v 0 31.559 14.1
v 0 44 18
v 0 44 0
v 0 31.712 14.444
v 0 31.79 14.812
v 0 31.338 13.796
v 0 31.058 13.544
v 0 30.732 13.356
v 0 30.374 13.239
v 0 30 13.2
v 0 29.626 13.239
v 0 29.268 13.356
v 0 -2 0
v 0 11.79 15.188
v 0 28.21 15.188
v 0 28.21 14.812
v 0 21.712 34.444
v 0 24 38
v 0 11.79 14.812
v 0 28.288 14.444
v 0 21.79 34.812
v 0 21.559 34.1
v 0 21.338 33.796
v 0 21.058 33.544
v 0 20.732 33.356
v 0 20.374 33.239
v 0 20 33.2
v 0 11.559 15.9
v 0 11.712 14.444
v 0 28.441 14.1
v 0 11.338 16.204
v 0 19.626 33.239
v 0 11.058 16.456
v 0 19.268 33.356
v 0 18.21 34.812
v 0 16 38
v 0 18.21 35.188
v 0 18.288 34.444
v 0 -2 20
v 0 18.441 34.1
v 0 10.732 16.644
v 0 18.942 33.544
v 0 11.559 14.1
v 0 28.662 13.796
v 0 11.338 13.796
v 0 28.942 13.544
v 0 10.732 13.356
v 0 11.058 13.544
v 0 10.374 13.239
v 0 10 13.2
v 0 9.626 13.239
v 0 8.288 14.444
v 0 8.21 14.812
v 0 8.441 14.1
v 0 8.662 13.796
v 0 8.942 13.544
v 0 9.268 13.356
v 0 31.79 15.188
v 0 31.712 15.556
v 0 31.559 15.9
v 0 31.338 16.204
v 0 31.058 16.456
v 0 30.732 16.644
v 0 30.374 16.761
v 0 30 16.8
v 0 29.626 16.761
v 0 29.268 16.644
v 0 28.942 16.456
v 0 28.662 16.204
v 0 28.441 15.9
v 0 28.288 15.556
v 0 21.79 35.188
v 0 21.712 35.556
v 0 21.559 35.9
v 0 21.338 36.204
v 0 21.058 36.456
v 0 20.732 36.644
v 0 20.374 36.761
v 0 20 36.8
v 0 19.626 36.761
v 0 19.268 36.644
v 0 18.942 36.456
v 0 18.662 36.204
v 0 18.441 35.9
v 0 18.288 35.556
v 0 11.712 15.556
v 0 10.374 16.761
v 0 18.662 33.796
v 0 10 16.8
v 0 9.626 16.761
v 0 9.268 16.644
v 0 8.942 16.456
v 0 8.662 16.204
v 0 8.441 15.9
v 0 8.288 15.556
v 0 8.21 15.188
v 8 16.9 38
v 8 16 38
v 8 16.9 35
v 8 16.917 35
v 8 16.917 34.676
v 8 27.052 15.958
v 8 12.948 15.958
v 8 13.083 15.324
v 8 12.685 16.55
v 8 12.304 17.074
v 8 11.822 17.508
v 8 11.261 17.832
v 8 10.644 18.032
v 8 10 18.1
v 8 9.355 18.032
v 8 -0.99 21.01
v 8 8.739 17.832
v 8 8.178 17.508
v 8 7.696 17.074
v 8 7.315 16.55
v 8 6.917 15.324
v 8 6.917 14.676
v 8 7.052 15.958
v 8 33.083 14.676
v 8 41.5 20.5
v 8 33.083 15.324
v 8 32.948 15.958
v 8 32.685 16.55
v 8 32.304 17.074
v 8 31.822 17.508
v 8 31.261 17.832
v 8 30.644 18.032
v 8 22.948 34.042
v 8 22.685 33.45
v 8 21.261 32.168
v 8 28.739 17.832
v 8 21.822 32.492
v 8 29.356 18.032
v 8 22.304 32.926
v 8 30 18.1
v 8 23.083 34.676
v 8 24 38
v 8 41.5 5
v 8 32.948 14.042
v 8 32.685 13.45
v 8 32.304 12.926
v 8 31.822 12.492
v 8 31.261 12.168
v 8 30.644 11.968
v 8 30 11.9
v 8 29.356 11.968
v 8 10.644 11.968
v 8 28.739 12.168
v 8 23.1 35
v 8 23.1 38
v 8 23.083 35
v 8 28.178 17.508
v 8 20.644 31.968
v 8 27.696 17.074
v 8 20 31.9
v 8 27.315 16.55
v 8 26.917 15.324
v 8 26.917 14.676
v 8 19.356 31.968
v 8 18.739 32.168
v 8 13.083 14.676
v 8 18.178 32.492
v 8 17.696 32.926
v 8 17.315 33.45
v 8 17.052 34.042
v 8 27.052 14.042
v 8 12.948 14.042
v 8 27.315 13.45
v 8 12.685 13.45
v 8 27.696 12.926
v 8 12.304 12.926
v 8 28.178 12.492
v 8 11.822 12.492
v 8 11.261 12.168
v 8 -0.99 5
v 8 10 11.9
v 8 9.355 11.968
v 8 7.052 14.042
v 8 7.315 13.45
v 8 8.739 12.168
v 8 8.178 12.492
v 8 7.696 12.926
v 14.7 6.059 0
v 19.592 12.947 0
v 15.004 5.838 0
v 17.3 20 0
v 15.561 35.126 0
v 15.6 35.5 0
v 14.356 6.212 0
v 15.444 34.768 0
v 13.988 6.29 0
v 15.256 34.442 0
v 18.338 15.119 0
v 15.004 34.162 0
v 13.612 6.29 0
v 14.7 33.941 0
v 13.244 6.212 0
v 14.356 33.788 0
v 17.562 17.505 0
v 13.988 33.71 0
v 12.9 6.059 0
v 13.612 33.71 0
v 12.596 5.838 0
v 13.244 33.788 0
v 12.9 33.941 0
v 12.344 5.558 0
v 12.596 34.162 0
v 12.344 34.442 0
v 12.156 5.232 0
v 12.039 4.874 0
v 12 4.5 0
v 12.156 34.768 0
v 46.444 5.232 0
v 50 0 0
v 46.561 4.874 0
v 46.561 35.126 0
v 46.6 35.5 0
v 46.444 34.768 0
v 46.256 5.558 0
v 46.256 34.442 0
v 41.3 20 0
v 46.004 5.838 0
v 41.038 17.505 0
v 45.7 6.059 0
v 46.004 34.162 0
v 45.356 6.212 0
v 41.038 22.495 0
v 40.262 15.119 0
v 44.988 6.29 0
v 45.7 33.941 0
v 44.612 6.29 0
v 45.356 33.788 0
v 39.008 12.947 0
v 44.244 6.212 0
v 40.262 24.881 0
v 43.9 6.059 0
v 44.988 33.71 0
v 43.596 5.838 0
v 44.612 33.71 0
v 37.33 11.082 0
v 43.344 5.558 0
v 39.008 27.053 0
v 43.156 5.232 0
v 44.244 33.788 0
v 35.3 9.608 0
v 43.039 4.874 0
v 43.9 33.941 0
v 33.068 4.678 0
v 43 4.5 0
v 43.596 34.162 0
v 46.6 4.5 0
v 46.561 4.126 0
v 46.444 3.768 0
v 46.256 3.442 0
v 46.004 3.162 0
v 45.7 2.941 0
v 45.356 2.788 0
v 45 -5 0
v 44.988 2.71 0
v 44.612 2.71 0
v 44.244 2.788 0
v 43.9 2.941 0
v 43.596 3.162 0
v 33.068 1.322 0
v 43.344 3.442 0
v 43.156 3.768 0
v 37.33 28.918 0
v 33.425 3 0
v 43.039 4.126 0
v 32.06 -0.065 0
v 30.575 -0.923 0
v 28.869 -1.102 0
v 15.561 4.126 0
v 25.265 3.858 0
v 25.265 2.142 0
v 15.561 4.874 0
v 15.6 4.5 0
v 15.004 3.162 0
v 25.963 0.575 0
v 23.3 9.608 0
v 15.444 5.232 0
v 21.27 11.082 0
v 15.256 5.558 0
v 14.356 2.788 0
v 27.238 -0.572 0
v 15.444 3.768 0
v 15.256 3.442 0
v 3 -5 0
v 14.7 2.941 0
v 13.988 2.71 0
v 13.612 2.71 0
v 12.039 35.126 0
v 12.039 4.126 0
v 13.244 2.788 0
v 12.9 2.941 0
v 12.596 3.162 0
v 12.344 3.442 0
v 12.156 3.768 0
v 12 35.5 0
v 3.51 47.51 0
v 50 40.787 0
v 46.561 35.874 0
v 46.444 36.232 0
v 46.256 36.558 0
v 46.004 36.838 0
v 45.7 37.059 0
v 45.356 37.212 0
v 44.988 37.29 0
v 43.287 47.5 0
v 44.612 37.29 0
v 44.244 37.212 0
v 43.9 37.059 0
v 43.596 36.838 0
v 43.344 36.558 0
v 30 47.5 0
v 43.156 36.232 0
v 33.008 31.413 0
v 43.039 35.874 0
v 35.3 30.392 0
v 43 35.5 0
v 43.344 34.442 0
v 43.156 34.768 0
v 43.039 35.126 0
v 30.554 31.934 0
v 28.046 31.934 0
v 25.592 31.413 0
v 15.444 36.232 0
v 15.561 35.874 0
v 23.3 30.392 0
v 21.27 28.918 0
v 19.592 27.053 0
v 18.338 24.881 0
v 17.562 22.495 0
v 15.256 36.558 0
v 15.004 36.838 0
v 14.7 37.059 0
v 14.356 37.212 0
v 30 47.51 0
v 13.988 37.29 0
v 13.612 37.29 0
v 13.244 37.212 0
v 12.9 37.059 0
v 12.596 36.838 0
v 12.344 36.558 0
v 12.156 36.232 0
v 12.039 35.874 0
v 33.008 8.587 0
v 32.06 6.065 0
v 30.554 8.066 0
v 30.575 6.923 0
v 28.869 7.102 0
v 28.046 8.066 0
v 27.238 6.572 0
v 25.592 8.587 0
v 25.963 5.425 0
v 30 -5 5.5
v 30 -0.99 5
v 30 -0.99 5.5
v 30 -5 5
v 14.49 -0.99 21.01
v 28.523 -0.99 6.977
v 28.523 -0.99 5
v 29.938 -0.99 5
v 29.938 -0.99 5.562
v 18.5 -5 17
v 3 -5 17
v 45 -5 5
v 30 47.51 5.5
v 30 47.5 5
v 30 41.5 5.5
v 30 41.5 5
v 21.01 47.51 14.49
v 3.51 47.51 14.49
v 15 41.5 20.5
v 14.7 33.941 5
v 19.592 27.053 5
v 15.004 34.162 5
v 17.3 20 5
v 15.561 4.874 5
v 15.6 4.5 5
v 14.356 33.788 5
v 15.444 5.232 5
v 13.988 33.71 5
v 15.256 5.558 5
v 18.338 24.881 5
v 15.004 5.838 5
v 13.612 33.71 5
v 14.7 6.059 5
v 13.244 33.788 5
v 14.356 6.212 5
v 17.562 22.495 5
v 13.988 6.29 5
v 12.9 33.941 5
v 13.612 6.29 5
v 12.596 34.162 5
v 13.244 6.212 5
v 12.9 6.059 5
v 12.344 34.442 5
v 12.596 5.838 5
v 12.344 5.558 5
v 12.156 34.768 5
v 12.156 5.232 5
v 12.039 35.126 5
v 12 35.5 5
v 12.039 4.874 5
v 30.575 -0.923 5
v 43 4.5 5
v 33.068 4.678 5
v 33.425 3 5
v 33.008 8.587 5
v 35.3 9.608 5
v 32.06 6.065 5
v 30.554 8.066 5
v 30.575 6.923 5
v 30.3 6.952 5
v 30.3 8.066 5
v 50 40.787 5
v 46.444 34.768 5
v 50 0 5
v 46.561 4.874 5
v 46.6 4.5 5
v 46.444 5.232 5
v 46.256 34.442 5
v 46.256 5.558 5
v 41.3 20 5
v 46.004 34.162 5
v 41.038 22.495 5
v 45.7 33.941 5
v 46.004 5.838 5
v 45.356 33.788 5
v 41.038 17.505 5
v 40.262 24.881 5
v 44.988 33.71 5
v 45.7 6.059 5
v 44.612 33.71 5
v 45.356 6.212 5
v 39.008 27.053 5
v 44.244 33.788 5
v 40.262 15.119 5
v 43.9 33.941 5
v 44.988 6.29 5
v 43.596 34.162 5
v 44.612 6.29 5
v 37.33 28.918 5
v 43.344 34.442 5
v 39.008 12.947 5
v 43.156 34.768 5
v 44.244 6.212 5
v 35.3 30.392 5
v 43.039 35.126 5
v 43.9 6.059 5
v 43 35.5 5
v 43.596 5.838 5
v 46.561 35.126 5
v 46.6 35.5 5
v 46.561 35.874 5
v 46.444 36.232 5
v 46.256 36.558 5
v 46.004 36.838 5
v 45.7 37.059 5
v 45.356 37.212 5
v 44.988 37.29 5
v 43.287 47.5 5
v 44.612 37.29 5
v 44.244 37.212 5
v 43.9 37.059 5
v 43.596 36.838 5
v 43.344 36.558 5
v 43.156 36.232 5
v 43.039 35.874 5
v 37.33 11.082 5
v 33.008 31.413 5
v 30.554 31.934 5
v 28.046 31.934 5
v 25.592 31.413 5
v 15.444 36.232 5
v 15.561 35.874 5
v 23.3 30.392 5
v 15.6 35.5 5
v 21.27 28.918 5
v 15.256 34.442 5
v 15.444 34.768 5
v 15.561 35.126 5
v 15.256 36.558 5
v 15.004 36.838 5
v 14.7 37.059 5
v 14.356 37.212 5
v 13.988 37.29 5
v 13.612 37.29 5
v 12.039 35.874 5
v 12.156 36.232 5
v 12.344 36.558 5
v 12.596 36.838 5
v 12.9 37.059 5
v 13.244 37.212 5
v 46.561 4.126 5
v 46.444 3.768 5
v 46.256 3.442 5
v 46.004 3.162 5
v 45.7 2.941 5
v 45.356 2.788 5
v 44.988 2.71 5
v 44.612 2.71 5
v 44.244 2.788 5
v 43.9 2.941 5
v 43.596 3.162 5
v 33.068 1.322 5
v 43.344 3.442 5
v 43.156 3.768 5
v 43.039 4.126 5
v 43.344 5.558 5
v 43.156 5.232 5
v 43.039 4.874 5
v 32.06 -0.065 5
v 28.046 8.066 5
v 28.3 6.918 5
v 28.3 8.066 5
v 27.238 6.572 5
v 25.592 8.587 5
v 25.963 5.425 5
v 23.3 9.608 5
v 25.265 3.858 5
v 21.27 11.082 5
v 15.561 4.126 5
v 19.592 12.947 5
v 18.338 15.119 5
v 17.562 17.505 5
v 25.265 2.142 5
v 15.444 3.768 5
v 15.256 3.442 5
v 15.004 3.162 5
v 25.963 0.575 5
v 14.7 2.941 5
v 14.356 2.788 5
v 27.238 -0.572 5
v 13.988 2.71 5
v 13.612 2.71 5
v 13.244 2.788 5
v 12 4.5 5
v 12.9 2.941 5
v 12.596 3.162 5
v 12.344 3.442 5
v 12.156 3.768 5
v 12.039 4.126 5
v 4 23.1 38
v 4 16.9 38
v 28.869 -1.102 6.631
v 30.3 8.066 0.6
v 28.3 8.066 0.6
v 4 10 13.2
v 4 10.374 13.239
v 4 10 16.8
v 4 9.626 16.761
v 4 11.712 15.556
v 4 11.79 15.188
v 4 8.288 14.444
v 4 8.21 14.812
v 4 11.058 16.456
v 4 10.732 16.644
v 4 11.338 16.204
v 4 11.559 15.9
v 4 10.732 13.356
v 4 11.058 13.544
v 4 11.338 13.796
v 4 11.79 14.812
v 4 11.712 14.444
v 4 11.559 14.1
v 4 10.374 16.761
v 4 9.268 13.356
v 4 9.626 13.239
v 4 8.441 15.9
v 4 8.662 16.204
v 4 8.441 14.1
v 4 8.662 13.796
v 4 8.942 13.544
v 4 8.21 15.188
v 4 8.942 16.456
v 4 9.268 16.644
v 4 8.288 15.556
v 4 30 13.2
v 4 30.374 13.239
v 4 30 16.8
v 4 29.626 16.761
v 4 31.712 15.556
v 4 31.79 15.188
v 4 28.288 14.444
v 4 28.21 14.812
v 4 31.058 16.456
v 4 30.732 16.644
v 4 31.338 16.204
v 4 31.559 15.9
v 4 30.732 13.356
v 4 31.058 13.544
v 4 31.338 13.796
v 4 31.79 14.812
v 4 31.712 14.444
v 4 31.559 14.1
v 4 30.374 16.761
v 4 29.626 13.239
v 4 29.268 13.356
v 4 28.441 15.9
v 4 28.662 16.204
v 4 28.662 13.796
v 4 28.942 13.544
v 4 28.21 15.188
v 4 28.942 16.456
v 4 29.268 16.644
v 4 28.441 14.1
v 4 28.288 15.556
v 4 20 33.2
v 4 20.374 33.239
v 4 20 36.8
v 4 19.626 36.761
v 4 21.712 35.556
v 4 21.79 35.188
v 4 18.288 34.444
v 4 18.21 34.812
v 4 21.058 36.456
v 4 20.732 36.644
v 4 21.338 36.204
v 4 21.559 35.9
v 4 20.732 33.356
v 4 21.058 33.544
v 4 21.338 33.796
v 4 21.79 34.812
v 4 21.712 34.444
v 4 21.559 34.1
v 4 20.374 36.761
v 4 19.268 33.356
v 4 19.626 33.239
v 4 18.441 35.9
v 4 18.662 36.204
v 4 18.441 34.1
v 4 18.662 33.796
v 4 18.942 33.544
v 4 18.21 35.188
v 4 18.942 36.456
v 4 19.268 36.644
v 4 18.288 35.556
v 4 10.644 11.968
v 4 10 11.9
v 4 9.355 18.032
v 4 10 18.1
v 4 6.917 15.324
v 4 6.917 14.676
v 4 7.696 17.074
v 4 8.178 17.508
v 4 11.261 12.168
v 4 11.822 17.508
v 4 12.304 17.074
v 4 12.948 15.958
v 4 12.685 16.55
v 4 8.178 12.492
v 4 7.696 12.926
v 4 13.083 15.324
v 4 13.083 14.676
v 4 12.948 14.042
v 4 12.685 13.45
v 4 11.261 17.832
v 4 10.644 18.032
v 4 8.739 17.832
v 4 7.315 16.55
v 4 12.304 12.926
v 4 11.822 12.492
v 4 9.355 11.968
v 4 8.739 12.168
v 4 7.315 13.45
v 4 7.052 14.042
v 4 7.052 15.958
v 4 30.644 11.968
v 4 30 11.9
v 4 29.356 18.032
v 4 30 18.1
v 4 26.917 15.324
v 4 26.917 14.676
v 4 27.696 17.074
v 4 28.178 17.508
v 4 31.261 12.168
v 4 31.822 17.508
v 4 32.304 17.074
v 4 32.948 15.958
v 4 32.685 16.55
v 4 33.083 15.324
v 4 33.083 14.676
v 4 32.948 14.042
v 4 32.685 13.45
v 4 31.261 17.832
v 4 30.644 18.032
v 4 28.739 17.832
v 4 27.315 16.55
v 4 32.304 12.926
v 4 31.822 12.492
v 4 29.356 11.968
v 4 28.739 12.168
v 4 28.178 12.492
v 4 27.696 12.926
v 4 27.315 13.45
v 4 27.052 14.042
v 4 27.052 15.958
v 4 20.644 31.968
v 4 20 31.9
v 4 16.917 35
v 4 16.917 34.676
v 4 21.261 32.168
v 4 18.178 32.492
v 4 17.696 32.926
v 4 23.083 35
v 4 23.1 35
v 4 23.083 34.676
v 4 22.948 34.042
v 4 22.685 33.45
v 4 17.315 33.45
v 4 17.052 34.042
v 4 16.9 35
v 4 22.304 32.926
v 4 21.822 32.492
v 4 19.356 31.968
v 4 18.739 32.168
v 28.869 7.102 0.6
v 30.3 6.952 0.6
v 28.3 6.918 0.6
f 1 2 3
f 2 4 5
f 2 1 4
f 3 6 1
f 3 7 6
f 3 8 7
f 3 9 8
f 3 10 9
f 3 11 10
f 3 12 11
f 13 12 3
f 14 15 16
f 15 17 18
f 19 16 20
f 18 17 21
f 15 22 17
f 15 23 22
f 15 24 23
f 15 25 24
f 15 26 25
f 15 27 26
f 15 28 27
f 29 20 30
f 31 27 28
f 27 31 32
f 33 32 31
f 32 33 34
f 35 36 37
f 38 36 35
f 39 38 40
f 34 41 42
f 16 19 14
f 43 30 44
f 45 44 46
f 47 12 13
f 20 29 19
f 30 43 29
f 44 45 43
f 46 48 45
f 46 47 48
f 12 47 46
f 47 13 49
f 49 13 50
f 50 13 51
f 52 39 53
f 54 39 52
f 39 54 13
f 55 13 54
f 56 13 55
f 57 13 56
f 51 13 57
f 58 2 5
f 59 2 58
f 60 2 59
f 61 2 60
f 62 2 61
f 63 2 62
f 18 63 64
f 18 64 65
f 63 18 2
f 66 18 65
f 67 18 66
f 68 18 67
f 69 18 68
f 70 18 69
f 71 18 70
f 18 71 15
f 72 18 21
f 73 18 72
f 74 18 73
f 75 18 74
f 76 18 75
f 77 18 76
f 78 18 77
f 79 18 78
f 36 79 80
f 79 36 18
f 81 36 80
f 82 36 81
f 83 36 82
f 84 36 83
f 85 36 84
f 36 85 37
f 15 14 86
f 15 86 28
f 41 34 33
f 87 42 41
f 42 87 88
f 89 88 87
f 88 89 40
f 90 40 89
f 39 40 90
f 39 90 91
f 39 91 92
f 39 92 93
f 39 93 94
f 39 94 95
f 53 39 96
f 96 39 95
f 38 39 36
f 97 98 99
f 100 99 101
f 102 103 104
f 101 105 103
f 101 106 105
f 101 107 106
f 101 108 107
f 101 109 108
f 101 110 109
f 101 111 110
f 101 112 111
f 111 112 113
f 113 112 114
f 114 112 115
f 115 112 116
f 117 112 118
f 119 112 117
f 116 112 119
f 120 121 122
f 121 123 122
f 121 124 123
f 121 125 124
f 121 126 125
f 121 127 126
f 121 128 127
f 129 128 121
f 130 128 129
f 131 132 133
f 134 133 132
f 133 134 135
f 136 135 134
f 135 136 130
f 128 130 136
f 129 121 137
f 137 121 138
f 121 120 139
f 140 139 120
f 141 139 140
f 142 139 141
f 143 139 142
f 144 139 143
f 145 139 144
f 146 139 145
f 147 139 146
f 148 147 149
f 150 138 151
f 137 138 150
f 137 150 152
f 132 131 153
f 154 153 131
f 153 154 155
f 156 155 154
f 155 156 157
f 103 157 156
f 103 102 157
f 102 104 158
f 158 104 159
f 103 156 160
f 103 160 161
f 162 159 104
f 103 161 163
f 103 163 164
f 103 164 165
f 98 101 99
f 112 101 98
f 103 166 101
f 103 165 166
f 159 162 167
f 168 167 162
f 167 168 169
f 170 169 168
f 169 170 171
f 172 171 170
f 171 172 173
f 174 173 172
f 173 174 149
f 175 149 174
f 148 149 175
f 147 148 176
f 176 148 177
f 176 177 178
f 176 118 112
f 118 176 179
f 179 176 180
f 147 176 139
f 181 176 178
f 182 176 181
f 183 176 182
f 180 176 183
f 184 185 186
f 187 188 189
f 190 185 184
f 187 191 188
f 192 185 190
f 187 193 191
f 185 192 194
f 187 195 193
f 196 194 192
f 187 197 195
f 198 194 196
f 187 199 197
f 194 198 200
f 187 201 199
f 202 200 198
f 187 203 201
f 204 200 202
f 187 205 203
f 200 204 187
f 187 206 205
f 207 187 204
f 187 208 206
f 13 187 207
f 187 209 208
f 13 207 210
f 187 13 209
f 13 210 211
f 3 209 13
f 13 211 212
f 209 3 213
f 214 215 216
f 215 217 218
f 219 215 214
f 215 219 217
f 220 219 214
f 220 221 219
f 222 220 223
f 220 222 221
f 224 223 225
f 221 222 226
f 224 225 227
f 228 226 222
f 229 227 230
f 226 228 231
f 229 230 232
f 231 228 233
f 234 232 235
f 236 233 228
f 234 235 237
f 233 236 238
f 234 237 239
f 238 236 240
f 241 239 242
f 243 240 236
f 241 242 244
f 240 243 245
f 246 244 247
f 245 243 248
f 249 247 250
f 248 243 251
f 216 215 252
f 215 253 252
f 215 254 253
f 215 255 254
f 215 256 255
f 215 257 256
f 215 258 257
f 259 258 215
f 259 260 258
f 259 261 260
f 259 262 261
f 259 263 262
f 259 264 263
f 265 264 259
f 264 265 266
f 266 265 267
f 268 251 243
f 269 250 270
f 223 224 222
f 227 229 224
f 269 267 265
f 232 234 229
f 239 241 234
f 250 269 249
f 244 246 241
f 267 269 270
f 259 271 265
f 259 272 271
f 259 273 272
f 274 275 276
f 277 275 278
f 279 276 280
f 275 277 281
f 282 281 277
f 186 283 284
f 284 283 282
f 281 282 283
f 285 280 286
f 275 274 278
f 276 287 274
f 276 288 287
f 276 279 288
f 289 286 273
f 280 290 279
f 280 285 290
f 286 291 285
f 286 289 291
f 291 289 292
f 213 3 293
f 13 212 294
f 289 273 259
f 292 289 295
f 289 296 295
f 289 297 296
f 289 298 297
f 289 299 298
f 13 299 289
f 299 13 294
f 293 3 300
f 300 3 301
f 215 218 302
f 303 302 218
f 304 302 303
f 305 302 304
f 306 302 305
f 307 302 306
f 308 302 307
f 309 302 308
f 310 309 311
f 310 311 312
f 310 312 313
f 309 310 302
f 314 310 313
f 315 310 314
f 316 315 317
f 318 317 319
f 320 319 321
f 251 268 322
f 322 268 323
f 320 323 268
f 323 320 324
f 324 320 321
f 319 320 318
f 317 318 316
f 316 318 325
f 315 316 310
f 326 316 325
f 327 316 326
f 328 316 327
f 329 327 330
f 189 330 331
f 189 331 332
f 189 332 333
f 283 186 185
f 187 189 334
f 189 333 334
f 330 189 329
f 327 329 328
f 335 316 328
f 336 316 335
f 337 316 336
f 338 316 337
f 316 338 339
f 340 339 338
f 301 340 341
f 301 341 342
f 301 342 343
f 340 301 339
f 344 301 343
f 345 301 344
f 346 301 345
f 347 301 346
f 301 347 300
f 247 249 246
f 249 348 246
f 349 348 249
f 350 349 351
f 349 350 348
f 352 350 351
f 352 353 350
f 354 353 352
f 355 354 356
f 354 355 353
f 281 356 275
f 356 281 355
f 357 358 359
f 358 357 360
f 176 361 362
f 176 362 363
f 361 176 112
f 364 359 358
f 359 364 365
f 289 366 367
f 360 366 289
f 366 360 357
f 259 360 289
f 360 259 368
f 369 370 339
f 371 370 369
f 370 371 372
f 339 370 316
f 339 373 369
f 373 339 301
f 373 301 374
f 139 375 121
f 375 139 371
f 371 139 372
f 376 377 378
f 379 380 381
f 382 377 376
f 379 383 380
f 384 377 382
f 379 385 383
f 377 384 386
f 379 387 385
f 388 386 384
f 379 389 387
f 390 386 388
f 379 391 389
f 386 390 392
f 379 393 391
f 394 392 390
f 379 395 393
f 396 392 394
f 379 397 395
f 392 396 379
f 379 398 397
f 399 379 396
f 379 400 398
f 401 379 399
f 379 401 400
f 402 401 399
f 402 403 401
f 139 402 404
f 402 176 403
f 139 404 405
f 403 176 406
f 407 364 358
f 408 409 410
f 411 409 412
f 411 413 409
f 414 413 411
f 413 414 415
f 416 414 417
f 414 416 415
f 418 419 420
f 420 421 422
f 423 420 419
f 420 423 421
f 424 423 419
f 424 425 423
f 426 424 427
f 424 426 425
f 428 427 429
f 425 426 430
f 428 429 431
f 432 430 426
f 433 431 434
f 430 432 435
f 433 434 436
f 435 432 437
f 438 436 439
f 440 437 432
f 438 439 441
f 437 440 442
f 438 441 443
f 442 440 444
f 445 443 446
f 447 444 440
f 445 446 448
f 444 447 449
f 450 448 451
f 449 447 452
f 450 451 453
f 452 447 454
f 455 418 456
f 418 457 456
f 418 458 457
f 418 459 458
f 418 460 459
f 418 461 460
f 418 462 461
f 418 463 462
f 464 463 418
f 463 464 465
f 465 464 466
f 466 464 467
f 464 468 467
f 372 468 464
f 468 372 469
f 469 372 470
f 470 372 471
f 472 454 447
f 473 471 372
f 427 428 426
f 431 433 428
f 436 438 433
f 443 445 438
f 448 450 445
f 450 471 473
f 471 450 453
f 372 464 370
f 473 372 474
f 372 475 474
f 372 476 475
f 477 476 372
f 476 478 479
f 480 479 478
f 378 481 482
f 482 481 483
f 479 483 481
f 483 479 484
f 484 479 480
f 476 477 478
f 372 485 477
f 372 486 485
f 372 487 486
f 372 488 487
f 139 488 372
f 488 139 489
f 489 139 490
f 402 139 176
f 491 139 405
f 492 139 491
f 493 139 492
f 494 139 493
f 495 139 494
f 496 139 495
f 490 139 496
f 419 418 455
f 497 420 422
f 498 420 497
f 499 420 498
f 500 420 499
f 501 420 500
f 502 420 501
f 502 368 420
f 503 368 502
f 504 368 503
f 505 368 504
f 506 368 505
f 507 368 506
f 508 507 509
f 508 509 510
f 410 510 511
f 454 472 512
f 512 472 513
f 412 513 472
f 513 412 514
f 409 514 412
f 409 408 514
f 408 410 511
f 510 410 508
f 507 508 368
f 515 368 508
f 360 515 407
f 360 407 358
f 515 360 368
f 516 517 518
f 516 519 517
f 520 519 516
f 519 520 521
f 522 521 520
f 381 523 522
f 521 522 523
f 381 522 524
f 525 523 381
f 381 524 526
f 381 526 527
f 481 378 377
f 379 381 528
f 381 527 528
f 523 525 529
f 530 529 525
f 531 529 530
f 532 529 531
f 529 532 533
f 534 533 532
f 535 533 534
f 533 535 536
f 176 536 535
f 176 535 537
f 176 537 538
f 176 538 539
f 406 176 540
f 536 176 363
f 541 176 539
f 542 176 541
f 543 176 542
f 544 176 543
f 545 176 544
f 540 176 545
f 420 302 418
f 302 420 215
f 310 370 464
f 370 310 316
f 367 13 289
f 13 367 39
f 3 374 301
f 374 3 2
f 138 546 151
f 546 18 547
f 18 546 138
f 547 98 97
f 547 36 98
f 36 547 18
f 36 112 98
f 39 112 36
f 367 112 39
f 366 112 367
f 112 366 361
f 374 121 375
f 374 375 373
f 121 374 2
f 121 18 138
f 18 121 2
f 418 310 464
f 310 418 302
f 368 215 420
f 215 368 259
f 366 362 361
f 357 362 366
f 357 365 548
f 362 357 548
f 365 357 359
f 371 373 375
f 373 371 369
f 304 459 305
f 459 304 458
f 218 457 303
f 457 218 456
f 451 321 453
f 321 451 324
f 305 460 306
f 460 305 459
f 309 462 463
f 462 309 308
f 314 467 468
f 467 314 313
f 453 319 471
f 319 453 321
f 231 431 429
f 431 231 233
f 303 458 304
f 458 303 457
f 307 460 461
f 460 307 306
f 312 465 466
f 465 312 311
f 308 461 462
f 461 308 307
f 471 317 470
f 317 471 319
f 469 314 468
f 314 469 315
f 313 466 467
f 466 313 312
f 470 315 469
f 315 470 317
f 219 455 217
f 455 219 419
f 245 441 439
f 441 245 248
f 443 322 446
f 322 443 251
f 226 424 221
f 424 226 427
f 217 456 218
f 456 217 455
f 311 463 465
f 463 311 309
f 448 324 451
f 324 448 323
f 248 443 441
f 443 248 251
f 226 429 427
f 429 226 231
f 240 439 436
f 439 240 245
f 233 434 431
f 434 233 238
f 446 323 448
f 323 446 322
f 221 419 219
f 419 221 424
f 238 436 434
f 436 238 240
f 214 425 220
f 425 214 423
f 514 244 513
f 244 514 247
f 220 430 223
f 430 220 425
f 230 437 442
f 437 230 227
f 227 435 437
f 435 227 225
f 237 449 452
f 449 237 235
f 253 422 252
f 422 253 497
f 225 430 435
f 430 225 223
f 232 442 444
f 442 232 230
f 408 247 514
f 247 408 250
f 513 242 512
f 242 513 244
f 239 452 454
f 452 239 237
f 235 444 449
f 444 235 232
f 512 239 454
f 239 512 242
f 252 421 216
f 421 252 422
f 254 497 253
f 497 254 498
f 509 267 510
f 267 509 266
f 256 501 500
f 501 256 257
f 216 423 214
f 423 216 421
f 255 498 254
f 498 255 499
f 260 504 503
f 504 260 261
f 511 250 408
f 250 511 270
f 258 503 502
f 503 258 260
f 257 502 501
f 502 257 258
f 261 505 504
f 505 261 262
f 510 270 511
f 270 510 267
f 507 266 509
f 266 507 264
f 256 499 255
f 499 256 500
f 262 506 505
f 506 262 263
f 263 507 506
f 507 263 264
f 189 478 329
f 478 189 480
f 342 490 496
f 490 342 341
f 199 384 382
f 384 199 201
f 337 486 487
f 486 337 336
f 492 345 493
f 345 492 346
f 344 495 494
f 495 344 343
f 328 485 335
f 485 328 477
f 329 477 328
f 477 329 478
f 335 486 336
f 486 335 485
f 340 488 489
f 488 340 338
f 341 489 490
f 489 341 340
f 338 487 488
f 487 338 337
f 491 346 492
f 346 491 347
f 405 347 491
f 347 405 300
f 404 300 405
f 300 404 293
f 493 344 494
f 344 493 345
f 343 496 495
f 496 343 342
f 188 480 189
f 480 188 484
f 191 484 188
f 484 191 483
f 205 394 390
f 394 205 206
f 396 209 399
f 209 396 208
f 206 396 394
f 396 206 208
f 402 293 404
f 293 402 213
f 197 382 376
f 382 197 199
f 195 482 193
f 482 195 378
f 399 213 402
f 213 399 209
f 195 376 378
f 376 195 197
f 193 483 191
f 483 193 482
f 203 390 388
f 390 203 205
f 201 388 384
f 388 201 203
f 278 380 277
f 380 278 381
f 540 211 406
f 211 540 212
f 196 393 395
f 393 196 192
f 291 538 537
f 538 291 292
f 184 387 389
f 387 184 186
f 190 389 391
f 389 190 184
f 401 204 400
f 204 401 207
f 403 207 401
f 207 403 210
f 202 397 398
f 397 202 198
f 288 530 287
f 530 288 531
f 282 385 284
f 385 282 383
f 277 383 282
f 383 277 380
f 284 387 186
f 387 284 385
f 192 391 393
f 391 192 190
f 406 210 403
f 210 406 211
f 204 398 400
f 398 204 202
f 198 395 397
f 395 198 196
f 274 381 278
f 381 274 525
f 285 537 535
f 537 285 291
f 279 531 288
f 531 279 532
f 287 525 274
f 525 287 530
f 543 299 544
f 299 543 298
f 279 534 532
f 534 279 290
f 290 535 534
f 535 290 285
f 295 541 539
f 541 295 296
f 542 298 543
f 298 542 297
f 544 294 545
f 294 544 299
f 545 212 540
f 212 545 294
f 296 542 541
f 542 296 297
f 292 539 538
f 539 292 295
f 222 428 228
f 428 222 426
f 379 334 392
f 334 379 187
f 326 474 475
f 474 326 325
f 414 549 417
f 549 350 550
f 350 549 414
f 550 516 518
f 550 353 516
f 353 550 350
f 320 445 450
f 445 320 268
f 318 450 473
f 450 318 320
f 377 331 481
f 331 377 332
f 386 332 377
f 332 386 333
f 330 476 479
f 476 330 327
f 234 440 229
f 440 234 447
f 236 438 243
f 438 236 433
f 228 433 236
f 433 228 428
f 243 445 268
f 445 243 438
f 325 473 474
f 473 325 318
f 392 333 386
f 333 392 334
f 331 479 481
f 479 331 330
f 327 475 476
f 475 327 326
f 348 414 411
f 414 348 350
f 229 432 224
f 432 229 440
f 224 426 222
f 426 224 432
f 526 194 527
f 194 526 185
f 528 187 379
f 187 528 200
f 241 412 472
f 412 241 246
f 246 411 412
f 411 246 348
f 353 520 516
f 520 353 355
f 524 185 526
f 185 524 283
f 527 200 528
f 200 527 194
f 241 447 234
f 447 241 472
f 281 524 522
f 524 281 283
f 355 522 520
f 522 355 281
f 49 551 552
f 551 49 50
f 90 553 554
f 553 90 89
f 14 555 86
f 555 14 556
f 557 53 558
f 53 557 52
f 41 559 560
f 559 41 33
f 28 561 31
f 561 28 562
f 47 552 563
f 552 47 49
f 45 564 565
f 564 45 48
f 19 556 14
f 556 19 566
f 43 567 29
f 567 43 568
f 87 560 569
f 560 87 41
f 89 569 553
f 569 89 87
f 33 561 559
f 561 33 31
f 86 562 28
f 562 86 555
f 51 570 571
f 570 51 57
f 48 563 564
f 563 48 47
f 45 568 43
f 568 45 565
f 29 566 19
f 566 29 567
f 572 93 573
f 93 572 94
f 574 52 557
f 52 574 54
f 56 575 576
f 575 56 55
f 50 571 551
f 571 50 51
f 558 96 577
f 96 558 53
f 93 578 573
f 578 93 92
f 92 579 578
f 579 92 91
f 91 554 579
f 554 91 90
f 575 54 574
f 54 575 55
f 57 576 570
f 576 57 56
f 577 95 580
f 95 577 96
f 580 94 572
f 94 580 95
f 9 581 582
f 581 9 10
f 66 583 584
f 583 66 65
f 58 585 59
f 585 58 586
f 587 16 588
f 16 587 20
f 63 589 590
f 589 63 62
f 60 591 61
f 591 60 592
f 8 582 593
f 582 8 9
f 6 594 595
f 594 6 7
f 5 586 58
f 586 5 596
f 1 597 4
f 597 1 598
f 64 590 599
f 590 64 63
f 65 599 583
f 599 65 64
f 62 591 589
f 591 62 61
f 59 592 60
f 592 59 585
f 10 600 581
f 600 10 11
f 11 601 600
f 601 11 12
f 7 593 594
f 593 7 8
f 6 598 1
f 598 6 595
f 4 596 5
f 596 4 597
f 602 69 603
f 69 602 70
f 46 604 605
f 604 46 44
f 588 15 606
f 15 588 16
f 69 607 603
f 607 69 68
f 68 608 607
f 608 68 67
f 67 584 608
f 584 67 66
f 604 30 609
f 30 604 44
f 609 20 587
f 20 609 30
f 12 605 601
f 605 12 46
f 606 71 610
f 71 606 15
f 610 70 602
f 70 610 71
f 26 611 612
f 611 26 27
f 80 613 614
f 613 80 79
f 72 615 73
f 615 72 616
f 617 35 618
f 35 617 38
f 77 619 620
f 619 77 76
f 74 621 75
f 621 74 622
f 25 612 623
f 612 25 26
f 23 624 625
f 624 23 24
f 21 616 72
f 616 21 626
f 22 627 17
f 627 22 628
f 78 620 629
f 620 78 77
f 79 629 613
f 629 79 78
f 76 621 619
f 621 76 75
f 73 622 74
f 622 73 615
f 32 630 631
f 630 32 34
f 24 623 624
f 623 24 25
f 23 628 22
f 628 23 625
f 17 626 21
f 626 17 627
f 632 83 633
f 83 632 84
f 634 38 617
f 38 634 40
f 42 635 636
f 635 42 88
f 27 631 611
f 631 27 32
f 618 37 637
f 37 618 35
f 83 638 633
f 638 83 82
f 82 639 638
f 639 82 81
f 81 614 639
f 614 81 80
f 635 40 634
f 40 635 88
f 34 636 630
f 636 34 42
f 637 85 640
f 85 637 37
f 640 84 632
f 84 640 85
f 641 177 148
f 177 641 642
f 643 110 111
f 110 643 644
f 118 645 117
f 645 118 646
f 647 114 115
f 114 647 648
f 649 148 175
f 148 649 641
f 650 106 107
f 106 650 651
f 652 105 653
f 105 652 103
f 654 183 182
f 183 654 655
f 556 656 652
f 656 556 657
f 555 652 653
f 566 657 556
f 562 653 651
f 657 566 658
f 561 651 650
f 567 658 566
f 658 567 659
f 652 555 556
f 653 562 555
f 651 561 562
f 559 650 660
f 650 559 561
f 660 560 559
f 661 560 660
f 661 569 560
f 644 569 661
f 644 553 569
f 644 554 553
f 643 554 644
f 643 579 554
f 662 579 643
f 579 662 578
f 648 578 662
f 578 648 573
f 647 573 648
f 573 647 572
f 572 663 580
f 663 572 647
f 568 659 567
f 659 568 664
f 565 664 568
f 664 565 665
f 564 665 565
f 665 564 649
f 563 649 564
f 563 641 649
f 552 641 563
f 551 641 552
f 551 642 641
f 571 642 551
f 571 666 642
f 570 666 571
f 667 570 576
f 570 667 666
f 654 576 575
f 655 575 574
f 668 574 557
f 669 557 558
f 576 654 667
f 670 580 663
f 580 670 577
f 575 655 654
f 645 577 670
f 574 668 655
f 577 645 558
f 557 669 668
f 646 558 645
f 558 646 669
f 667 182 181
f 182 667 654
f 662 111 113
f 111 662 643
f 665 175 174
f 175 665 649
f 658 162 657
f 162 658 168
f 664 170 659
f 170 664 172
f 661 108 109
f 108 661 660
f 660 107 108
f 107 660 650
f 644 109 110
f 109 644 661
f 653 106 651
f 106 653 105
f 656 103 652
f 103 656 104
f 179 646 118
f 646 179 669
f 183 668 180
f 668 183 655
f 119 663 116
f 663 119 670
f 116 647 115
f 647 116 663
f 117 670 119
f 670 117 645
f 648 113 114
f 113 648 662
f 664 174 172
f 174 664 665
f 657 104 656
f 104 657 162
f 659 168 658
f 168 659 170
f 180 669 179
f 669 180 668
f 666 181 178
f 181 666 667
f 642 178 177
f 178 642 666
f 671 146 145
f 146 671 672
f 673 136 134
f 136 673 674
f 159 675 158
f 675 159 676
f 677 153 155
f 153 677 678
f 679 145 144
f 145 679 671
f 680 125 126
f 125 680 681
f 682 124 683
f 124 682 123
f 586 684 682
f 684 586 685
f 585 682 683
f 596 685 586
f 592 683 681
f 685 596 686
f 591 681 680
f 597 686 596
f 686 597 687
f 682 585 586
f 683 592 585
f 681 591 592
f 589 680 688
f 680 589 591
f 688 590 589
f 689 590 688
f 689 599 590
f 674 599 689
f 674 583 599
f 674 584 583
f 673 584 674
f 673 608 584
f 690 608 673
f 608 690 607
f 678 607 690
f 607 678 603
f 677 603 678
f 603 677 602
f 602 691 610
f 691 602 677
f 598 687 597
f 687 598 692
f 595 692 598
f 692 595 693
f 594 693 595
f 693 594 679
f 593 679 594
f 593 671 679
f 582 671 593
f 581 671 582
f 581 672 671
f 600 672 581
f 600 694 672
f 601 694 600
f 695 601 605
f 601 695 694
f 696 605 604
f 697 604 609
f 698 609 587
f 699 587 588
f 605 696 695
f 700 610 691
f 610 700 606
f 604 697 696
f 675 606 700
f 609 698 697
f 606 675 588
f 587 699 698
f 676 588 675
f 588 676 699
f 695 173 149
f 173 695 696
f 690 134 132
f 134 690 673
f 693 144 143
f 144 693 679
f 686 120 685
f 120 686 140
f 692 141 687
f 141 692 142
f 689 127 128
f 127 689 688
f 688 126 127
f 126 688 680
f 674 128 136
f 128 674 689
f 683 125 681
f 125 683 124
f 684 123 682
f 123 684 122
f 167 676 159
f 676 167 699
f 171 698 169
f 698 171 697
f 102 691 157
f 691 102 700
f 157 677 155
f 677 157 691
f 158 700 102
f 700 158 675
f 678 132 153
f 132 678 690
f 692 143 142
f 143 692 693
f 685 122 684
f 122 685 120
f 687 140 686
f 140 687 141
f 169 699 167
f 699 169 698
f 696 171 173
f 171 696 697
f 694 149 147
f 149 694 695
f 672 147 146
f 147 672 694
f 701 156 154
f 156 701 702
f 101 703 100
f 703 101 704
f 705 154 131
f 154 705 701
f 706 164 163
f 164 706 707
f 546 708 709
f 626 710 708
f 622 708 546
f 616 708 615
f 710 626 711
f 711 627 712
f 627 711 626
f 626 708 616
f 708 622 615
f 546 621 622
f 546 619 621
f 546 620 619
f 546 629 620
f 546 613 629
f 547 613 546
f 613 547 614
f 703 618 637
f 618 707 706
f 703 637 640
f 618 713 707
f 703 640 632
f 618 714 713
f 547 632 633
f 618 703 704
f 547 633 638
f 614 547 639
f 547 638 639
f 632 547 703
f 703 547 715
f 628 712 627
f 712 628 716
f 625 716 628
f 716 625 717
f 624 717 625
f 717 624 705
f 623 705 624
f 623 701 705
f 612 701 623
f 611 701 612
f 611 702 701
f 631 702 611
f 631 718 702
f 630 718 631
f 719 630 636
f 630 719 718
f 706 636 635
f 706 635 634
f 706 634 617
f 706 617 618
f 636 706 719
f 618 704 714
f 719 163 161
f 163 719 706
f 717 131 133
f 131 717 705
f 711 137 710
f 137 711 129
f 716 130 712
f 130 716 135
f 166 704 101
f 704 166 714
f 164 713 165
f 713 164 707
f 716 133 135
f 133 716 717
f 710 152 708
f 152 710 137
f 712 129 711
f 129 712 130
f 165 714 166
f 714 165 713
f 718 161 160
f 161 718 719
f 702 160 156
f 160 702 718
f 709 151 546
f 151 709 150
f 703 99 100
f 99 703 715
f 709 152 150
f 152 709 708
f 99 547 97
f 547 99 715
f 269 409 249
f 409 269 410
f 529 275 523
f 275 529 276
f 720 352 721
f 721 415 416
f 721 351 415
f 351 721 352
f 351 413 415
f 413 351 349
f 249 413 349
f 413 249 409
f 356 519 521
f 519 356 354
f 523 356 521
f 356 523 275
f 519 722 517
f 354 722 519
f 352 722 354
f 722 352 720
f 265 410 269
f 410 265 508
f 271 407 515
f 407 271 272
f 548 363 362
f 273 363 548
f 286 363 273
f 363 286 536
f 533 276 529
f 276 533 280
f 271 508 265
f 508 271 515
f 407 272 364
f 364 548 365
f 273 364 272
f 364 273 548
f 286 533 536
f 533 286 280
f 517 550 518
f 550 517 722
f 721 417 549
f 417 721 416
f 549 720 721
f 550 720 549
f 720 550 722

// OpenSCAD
//Original Prusa

// PRUSA iteration3
// Z axis bottom holder
// GNU GPL v3
// Josef Průša <iam@josefprusa.cz> and contributors
// http://www.reprap.org/wiki/Prusa_Mendel
// http://prusamendel.org

module z_bottom_base(){
 translate([0,-1.5,0]) cube([8,49,16+25]); // plate touching the base
 translate([0,-5,0]) cube([30,4.01,22]); // plate touching the base
 translate([0,41.5,0]) cube([30,6.01,22]); // plate touching the base
 translate([0,-5,0]) cube([50,52.5,5]); // plate touching the base
}

module z_bottom_fancy(){
 // corner cutouts
 translate([0.5,-2.5,0]) rotate([0,0,-45-180]) translate([-15,0,-1]) cube([30,30,51]);
 translate([0.5,40-0.5+5,0]) rotate([0,0,-45+90]) translate([-15,0,-1]) cube([30,30,51]);
 //translate([-4,40+5,5]) rotate([0,0,-35-0]) translate([0,0,0.1]) cube([30,30,51]);
 //translate([-4+11,40+5+5,0]) rotate([0,0,-45-0]) translate([0,0,-1]) cube([30,30,51]);
 translate([8,0,12+20+6]) rotate([0,-90,0]) translate([0,-5,0]) cube([30,50,30]);
 translate([20,-2,12+8]) rotate([45,0,0]) rotate([0,-90,0]) translate([0,-5,0]) cube([30,50,30]);
 translate([25,20,12+30]) rotate([-45,0,0]) rotate([0,-90,0]) translate([0,-5,0]) cube([30,50,30]);
 translate([50-2.5,-5+2.5+67,0]) rotate([0,0,-45-90]) translate([-15,0,-1]) cube([30,30,51]);
 translate([50-2.5,-5+2.5,0]) rotate([0,0,-45-90]) translate([-15,0,-1]) cube([30,30,51]);
 //translate([50-1.5,10-1.5,0]) rotate([0,0,-45]) translate([-15,0,-1]) cube([30,30,51]);
 //translate([0,0,5]) rotate([45+180,0,0]) rotate([0,0,-45+90]) translate([0,0,-15]) cube([30,30,30]);
 // Stiffner cut out
   translate([30,0,5.5]) rotate([0,-45,0]) translate([0,-5,0]) cube([30,60,30]);
}

module z_bottom_holes(){
 // Frame mounting screw holes
 translate([-1,10,10+5]) rotate([0,90,0]) cylinder(h = 20, r=1.8, $fn=30);
 translate([-1,10+20,10+5]) rotate([0,90,0]) cylinder(h = 20, r=1.8, $fn=30);
 translate([-1,10+10,10+20+5]) rotate([0,90,0]) cylinder(h = 20, r=1.8, $fn=30);

 // Frame mounting screw head holes
 translate([4,10,10+5]) rotate([0,90,0]) cylinder(h = 20, r=3.1, $fn=30);
 translate([4,10+20,10+5]) rotate([0,90,0]) cylinder(h = 20, r=3.1, $fn=30);
 translate([4,10+10,10+20+5]) rotate([0,90,0]) cylinder(h = 20, r=3.1, $fn=30);
 translate([4,10+10-3.1,10+20+5]) cube([10,6.2,10]);

 // Z rod holder
 translate([25+4.3,3,-1]) rotate([0,0,0]) cylinder(h = 50, r=4.125, $fn=15);
 translate([25+4.3-1,3,0.6]) cube([2,10,7]); // it's bit up because it helps with printing

 // motor mounting
 translate([25+4.3,20,-1]){
 //translate([15.5,15.5,-1]) cylinder(h = 20, r=1.8, $fn=30);
 
 translate([15.5,15.5,-1]) cylinder(h = 20, r=1.8, $fn=30);
 translate([15.5,-15.5,-1]) cylinder(h = 20, r=1.8, $fn=30);
 translate([-15.5,15.5,-1]) cylinder(h = 20, r=1.8, $fn=30);
 translate([-15.5,-15.5,-1]) cylinder(h = 20, r=1.8, $fn=30);
 
 
 translate([0,0,-1]) cylinder(h = 20, r=12, $fn=30);
 }

}

module z_bottom_right(){
    difference(){
        z_bottom_base();
        z_bottom_fancy();
        z_bottom_holes();
    }
}

module z_bottom_left(){
 translate([0,-13,0]) mirror([0,1,0]) 
    difference(){
        z_bottom_base();
        z_bottom_fancy();
        z_bottom_holes();
 }
}

//z_bottom_holder();
z_bottom_right();
//z_bottom_left();
